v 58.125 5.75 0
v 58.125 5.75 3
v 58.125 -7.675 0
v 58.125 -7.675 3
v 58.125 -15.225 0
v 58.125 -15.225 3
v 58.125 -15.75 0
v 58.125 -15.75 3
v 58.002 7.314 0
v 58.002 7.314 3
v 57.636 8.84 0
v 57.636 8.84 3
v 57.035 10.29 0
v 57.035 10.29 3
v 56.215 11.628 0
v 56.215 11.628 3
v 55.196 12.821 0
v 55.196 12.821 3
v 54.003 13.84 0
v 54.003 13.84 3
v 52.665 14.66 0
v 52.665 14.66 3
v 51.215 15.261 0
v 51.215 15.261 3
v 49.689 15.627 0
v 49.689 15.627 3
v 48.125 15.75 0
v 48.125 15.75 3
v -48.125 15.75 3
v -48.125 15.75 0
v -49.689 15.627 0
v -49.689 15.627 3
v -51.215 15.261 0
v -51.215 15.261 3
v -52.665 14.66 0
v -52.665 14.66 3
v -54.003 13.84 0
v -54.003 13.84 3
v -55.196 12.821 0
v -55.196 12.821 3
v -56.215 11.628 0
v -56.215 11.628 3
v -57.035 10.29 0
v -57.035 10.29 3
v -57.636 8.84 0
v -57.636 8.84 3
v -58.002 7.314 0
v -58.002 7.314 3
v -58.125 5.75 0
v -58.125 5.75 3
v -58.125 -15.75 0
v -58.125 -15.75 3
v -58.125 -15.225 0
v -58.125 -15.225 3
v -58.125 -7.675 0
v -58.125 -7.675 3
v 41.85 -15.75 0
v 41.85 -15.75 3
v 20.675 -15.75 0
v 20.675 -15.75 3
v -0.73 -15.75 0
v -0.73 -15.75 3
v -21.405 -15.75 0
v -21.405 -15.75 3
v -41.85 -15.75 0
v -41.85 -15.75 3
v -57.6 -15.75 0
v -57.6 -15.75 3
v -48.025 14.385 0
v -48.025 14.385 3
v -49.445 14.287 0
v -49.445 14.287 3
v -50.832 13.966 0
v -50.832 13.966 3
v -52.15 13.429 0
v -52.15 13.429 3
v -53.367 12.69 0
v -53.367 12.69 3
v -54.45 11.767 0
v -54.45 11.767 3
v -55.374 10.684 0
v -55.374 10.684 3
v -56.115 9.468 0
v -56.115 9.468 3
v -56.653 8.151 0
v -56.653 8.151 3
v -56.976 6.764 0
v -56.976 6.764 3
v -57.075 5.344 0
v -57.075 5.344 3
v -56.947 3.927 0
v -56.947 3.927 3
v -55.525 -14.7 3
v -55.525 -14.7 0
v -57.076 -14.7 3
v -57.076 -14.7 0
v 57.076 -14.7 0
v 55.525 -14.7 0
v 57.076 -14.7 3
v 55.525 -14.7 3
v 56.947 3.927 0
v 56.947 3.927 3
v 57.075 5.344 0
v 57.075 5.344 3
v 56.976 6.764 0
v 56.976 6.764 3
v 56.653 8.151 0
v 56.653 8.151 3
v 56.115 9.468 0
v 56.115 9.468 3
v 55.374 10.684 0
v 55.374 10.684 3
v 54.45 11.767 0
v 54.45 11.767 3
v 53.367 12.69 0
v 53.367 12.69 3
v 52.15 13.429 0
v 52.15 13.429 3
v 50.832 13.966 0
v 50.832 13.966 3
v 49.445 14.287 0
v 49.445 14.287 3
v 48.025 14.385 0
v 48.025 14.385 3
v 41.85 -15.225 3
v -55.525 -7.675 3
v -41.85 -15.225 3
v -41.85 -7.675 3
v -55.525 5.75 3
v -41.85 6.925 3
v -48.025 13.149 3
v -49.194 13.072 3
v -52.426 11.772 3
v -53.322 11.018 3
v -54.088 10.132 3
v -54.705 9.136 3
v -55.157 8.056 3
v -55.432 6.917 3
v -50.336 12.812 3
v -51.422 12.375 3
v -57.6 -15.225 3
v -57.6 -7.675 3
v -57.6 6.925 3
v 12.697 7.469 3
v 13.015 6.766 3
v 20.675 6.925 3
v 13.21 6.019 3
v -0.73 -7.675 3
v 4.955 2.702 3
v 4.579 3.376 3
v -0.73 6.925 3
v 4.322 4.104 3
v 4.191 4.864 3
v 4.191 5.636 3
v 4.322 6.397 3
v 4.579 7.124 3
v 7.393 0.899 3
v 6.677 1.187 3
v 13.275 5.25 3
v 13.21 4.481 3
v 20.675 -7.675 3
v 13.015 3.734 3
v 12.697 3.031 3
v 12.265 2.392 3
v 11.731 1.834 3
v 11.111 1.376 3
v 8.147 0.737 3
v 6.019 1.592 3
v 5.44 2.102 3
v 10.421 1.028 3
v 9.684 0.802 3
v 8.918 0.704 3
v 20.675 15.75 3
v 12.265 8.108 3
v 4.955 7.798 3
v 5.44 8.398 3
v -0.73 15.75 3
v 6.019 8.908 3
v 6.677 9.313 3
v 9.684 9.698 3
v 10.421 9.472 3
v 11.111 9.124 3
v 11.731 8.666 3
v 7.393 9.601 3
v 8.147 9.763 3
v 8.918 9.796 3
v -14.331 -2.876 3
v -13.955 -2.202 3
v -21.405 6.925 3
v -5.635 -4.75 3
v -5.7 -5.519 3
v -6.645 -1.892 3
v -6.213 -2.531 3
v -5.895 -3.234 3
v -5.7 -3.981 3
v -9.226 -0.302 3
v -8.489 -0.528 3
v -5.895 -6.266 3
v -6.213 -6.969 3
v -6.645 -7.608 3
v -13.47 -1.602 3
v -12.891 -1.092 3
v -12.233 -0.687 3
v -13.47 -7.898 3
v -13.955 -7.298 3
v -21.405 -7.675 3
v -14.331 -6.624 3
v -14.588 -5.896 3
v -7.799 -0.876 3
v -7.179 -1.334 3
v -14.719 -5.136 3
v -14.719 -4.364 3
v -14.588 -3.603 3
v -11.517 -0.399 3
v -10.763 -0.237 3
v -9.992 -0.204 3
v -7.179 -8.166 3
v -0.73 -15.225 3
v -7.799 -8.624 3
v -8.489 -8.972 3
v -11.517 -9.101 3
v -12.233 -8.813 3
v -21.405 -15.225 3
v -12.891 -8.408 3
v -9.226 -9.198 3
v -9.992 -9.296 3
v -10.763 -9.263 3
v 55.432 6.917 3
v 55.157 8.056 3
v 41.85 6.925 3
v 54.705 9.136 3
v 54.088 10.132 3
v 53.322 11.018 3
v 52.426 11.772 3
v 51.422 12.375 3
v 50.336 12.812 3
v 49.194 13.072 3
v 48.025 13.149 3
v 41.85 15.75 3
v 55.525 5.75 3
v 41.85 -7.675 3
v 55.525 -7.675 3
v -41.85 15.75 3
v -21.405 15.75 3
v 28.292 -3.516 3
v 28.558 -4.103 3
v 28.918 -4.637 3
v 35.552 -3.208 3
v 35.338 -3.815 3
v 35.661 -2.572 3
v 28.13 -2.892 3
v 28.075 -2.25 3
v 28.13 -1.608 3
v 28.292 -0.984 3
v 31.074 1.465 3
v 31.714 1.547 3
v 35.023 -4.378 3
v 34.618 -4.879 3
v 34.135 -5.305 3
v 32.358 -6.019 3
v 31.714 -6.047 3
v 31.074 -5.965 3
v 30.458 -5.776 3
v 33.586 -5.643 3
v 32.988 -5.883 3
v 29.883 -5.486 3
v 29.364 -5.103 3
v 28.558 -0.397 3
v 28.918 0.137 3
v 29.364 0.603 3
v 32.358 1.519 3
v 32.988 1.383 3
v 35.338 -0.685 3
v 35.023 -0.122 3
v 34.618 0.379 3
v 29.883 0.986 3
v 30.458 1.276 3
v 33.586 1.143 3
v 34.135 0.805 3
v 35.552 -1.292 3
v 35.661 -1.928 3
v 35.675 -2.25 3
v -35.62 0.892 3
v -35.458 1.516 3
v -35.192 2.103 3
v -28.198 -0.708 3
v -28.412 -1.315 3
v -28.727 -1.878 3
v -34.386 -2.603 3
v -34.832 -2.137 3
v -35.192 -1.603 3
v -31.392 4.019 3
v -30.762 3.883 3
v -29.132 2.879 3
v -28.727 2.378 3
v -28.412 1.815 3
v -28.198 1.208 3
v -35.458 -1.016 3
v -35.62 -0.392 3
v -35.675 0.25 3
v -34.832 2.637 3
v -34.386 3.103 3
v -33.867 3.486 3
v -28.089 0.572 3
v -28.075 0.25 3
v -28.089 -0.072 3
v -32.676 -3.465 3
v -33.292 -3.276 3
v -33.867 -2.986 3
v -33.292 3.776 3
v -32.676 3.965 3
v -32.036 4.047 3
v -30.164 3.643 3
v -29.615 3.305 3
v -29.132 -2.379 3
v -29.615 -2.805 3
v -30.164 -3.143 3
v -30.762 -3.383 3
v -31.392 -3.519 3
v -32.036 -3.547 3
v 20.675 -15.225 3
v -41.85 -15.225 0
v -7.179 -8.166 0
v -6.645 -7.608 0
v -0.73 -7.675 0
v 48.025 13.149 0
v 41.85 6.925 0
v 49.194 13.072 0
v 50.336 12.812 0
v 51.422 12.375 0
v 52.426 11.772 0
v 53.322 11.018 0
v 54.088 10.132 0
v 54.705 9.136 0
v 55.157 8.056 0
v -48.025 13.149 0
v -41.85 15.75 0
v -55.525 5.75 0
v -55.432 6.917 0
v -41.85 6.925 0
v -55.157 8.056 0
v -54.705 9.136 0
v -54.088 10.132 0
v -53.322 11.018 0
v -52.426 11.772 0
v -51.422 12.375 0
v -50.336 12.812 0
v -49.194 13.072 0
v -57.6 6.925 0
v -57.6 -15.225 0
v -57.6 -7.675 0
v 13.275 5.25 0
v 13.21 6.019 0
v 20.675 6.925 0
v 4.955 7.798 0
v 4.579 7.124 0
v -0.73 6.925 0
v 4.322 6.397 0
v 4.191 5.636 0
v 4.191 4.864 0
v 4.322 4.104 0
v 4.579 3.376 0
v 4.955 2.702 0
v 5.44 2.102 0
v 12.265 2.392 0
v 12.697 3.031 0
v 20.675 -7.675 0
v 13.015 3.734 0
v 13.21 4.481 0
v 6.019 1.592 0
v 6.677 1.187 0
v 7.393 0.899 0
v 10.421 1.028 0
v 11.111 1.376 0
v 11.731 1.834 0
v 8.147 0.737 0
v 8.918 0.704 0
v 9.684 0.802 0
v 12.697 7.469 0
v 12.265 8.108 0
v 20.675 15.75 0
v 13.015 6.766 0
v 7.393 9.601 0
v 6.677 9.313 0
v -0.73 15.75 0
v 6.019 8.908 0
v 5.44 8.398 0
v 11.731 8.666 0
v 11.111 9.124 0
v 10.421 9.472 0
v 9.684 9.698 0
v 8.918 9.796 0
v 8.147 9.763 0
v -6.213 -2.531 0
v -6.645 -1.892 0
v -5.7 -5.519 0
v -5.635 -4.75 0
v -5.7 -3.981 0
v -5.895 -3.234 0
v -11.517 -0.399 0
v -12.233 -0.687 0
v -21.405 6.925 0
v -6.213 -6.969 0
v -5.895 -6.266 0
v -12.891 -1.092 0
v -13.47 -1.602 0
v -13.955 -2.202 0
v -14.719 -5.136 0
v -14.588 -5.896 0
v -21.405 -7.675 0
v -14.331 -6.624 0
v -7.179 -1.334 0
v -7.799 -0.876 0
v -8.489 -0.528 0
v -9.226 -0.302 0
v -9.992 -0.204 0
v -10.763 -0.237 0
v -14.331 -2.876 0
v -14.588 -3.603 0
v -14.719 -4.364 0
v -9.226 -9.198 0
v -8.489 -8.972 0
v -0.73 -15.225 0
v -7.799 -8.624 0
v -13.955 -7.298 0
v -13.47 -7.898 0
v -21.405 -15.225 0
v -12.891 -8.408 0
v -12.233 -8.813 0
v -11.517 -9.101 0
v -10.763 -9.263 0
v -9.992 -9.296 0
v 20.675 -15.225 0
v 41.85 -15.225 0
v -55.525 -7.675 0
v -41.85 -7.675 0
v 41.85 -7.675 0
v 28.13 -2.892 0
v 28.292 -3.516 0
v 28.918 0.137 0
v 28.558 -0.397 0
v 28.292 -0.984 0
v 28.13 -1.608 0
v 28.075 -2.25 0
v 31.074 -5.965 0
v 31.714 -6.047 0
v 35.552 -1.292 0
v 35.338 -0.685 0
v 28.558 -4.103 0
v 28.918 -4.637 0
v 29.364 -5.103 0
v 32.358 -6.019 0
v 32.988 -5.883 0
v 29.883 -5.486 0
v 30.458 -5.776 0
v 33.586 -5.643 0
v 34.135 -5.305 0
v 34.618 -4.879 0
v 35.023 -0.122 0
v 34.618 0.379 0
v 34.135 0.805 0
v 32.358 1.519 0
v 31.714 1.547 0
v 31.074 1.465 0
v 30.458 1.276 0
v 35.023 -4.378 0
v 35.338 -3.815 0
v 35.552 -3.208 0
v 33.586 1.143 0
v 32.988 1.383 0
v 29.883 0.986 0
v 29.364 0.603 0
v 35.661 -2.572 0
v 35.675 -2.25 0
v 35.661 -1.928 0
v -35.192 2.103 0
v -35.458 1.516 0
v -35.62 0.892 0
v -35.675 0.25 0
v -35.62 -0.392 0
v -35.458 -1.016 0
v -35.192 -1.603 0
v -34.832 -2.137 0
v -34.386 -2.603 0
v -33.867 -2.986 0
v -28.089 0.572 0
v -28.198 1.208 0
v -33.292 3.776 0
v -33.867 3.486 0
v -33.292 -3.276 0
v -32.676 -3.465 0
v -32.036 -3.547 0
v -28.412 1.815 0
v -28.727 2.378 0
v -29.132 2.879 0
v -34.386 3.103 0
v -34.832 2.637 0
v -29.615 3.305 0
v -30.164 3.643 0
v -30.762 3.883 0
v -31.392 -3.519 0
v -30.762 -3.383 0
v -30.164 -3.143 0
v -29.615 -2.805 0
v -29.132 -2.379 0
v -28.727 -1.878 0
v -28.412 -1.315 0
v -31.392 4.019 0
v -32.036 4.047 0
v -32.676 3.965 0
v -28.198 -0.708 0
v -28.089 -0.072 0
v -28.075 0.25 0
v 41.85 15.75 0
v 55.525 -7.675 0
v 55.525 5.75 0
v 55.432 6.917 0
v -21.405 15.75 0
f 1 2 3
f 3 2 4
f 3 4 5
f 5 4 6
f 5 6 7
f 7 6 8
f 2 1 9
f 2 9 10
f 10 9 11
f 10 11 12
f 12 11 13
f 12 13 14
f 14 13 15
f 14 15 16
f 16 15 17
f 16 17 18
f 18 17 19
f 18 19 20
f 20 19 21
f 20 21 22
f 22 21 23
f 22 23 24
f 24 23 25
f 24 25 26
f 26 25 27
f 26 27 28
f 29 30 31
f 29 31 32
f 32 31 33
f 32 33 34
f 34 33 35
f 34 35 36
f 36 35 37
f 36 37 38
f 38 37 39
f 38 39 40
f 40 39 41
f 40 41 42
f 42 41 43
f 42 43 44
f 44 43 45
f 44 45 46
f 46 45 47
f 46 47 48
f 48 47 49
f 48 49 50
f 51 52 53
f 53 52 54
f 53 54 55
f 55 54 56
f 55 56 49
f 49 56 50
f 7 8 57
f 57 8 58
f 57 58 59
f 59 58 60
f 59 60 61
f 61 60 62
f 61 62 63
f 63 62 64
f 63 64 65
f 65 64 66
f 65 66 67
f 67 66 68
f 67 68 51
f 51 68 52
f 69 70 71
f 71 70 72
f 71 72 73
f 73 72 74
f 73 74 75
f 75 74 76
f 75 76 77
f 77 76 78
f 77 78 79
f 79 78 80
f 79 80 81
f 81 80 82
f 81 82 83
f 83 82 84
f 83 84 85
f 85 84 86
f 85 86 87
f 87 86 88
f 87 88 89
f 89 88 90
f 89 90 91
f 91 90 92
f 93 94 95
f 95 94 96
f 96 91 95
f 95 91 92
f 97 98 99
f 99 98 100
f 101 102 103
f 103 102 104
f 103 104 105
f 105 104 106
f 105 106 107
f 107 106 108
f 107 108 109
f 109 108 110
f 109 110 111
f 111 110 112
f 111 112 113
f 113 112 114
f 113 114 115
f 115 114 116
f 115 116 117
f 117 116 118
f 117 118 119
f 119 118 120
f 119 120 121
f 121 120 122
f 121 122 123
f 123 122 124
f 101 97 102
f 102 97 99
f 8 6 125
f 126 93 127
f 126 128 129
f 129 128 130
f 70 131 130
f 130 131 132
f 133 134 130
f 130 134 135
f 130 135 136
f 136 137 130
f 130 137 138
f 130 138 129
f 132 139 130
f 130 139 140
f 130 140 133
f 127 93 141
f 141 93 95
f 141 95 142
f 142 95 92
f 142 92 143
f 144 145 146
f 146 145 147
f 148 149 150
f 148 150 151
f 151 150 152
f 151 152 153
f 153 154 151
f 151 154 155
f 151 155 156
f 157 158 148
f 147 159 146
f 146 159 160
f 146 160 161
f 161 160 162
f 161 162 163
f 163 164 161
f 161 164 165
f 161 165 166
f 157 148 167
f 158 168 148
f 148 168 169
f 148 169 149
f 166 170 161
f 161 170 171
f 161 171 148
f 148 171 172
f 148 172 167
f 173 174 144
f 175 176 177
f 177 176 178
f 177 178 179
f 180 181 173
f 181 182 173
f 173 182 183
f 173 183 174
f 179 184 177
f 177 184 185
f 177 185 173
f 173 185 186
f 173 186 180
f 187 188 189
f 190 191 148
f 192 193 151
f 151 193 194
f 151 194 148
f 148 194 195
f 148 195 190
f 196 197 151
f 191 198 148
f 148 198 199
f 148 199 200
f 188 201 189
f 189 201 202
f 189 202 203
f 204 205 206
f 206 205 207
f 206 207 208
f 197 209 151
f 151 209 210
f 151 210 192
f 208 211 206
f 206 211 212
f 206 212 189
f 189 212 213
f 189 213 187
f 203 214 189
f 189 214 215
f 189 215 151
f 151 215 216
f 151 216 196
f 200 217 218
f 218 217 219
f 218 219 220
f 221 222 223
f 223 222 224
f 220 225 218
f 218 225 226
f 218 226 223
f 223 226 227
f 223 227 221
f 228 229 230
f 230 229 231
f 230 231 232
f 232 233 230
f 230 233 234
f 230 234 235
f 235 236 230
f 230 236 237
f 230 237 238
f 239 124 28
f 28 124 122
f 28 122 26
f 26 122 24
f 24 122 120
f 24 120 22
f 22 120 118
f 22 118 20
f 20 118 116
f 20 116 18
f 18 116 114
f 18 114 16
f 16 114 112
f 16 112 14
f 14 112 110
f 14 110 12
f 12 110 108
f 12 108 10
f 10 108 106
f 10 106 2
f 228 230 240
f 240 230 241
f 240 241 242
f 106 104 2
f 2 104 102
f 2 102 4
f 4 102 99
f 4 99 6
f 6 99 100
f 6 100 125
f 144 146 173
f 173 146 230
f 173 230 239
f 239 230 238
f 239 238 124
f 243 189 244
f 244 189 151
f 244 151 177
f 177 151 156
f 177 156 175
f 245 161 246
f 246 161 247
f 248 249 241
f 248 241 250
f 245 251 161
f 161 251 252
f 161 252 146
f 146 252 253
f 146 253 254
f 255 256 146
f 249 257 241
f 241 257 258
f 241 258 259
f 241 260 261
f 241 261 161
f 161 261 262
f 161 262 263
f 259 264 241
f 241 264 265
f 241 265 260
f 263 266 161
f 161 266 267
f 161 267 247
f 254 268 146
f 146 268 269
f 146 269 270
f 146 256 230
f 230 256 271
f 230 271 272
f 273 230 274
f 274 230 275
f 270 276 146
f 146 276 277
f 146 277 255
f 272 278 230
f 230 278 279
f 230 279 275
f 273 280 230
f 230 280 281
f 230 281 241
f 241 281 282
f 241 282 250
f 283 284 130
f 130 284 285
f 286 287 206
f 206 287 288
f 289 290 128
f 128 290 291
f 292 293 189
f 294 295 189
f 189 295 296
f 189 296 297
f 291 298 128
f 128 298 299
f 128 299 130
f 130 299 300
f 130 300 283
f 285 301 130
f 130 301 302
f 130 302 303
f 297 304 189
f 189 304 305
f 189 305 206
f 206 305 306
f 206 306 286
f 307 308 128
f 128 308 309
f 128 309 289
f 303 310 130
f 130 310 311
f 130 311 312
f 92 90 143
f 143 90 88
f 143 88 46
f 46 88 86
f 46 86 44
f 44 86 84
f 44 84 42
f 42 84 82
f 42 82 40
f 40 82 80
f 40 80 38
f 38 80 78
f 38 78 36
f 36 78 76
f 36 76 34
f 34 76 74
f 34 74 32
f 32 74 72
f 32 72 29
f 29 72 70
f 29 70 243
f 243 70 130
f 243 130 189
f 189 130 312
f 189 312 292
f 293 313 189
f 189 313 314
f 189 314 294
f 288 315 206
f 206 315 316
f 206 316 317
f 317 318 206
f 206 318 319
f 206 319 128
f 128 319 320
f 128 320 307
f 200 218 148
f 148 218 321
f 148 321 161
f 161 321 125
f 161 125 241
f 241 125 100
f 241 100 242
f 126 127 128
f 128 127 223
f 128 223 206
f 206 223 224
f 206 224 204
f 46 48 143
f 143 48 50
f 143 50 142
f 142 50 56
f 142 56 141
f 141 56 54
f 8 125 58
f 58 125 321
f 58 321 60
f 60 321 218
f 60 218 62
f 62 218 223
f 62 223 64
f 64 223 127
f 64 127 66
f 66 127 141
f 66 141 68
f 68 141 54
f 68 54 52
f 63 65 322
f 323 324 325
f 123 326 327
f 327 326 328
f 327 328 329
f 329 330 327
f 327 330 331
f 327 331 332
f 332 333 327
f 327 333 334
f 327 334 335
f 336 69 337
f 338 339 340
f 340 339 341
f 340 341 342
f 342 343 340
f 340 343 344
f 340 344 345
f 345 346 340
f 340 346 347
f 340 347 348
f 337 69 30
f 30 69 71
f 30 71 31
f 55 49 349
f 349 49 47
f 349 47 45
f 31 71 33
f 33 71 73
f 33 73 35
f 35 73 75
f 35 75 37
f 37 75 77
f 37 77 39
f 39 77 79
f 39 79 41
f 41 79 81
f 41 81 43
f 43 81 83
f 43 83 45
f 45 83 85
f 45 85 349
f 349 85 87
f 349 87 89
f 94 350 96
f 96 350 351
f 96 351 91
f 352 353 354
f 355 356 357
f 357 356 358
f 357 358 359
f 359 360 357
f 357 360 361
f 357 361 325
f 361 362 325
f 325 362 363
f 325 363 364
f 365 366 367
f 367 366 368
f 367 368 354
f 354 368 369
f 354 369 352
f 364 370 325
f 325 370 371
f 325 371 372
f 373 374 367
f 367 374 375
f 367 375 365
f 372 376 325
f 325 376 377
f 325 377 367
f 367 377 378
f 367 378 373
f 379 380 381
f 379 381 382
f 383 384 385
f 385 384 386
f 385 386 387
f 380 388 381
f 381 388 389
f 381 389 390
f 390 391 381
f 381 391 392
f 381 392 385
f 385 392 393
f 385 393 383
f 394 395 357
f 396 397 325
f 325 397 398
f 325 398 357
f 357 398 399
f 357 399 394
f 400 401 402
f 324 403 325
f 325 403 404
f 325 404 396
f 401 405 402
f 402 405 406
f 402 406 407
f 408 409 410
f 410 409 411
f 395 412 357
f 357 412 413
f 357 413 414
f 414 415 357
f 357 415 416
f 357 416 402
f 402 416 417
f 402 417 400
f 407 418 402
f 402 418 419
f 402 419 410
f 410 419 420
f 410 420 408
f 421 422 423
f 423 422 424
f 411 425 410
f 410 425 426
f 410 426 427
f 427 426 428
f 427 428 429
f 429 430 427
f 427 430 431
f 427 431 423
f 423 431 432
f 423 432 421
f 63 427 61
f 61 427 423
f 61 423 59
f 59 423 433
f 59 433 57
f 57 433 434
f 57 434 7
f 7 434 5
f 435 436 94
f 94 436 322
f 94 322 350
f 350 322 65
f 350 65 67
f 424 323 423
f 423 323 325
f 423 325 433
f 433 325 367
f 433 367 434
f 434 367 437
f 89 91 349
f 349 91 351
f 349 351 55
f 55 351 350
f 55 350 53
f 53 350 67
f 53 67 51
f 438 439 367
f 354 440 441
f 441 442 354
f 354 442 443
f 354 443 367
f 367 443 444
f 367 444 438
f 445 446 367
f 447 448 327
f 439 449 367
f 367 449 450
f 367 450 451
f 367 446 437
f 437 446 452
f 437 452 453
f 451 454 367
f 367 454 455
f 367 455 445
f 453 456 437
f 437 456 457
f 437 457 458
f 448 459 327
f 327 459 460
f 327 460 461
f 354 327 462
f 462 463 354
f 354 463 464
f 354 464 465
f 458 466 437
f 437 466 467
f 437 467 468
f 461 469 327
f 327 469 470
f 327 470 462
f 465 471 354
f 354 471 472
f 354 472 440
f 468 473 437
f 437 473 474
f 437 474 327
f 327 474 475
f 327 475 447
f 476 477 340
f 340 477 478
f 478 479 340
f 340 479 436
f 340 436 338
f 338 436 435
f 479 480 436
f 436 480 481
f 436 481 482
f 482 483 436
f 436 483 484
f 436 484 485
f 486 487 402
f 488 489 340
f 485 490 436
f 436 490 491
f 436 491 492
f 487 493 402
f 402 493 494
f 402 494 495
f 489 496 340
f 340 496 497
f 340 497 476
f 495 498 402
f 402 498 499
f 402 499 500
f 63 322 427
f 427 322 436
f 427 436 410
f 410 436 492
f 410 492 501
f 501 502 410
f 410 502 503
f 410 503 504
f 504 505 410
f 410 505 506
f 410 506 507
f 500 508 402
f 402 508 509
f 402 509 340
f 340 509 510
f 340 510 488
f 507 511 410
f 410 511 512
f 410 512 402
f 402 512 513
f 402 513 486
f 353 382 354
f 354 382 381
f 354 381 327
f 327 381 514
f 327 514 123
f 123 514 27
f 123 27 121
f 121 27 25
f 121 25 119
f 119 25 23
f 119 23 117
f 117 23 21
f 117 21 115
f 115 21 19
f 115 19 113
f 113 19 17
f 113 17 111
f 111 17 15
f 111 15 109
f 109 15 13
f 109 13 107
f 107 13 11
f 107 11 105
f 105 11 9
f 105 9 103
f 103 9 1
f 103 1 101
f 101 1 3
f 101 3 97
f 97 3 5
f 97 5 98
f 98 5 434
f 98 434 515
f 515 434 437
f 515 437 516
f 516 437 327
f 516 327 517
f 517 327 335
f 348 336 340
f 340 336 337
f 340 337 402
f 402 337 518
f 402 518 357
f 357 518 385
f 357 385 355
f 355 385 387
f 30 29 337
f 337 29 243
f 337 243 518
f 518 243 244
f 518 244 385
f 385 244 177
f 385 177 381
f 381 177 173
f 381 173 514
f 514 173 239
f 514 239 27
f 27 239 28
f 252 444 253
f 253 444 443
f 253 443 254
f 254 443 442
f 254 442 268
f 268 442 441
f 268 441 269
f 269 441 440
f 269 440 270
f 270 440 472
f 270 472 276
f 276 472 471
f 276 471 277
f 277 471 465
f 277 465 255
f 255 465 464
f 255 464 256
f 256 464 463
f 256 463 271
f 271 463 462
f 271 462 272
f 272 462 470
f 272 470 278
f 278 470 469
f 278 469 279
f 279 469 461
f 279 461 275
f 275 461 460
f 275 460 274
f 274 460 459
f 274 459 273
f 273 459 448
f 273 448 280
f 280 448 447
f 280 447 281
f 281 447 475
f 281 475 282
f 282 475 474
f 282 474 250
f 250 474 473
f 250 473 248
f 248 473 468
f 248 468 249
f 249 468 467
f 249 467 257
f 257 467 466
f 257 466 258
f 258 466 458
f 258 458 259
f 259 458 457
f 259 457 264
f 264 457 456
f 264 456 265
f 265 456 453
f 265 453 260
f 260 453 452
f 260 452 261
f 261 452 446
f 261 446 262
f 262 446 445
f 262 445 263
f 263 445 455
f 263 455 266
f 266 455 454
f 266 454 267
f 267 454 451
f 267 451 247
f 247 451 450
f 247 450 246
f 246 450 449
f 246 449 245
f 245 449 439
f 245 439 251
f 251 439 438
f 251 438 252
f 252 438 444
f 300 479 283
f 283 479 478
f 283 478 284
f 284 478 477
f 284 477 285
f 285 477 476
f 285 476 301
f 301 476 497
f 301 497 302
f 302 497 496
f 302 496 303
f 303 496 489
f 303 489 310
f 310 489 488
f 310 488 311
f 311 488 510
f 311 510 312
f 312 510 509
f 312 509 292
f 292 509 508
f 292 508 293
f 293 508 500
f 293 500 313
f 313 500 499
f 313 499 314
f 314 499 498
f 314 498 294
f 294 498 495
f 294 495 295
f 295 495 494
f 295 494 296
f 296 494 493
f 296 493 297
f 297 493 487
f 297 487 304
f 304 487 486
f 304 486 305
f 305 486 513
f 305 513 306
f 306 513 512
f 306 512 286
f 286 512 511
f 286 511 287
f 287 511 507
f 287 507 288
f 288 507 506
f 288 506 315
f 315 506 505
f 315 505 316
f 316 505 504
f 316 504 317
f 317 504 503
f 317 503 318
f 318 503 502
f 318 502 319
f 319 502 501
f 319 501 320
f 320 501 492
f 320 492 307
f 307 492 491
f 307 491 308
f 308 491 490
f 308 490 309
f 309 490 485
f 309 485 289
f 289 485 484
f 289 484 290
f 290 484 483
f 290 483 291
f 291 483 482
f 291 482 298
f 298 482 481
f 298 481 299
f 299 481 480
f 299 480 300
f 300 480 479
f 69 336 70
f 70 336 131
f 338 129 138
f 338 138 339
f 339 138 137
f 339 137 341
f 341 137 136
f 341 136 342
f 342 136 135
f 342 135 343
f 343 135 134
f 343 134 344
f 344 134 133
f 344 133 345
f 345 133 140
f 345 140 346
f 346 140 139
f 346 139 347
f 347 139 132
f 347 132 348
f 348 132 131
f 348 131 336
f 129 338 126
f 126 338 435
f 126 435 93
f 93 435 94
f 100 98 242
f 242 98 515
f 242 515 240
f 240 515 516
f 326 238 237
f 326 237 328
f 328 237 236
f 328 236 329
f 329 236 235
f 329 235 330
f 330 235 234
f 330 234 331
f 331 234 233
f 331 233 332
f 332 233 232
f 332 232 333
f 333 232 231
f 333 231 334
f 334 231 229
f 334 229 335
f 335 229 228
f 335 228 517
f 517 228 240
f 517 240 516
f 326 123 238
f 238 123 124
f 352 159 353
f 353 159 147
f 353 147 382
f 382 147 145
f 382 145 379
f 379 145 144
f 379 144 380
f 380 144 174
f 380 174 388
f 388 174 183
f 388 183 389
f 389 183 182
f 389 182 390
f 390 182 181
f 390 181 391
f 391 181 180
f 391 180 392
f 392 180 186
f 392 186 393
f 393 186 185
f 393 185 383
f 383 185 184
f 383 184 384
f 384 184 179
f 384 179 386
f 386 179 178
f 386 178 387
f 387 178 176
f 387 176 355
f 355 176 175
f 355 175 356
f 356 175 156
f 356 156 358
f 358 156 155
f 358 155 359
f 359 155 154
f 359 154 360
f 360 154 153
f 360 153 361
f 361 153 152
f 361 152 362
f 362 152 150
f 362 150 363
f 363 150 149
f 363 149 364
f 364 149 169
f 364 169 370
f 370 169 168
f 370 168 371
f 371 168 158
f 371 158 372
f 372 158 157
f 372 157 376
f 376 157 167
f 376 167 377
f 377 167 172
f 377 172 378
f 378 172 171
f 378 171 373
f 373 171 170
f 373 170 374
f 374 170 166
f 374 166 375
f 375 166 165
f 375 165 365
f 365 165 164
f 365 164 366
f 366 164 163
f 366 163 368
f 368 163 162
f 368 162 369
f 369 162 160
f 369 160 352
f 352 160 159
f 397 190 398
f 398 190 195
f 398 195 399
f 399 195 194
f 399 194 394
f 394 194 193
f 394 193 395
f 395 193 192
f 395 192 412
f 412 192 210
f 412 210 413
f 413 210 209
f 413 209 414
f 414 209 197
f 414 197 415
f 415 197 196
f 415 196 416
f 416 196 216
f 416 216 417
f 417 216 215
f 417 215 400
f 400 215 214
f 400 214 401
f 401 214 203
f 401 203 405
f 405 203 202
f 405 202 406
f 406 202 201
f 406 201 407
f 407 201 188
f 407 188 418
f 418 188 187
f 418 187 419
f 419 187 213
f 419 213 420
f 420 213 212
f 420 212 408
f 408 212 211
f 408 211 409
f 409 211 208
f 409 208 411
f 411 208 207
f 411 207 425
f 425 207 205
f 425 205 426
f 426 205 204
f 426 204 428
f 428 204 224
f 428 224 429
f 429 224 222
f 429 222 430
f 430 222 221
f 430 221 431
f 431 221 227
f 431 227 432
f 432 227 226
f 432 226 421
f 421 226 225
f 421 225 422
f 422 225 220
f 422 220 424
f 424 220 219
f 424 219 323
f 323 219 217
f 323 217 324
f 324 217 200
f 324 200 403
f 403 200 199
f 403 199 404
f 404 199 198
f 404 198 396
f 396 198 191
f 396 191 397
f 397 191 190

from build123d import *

# Parameters (mm, degrees)
SKETCH1_R           = 3.8
BOSS_EXTRUDE2_DEPTH = 3
SKETCH2_R           = 4.4
BOSS_EXTRUDE3_DEPTH = 25
CUT_EXTRUDE3_START  = -1
SKETCH10_R          = 4.4
CUT_EXTRUDE3_DEPTH  = 1
CUT_EXTRUDE4_DEPTH  = 50
SKETCH12_R          = 4.55
CUT_EXTRUDE6_DEPTH  = 50
CUT_EXTRUDE7_DEPTH  = 25


with BuildPart() as part:
    # Sketch1 → Boss-Extrude2 (new body)
    with BuildSketch(Plane.XY):
        with BuildLine():
            Line((-48.125, 15.75), (48.125, 15.75))
            ThreePointArc((48.125, 15.75), (55.196067812, 12.821067812), (58.125, 5.75))
            Line((58.125, 5.75), (58.125, -15.75))
            Line((58.125, -15.75), (-58.125, -15.75))
            Line((-58.125, -15.75), (-58.125, 5.75))
            ThreePointArc((-58.125, 5.75), (-55.196067812, 12.821067812), (-48.125, 15.75))
        make_face()
        with Locations((31.875, -2.25)):
            Circle(SKETCH1_R, mode=Mode.SUBTRACT)
        with Locations((-31.875, 0.25)):
            Circle(SKETCH1_R, mode=Mode.SUBTRACT)
    extrude(amount=BOSS_EXTRUDE2_DEPTH)

    # Sketch2 → Boss-Extrude3 (add)
    with BuildSketch(Plane.XY.offset(3)):
        with Locations((8.725, 5.25)):
            Circle(SKETCH2_R)
        with Locations((-10.185, -4.75)):
            Circle(SKETCH2_R)
        with BuildLine():
            Line((55.625, 5.75), (55.625, -15.75))
            Line((55.625, -15.75), (58.125, -15.75))
            Line((58.125, -15.75), (58.125, 5.25))
            Line((58.125, 5.25), (58.125, 5.75))
            ThreePointArc((58.125, 5.75), (55.196067812, 12.821067812), (48.125, 15.75))
            Line((48.125, 15.75), (48.125, 13.25))
            ThreePointArc((48.125, 13.25), (53.428300859, 11.053300859), (55.625, 5.75))
        make_face()
        with BuildLine():
            Line((-58.125, -15.75), (-55.625, -15.75))
            Line((-55.625, -15.75), (-55.625, 5.75))
            ThreePointArc((-55.625, 5.75), (-53.428300859, 11.053300859), (-48.125, 13.25))
            Line((-48.125, 13.25), (-48.125, 15.75))
            ThreePointArc((-48.125, 15.75), (-55.196067812, 12.821067812), (-58.125, 5.75))
            Line((-58.125, 5.75), (-58.125, 5.25))
            Line((-58.125, 5.25), (-58.125, -15.75))
        make_face()
    extrude(amount=BOSS_EXTRUDE3_DEPTH)

    # Sketch10 → Cut-Extrude3 (cut)
    with BuildSketch(Plane.XY.offset(28).offset(CUT_EXTRUDE3_START)):
        with Locations((8.725, 5.25)):
            Circle(SKETCH10_R)
        with Locations((-10.185, -4.75)):
            Circle(SKETCH10_R)
    extrude(amount=CUT_EXTRUDE3_DEPTH, mode=Mode.SUBTRACT)

    # Sketch5 → Cut-Extrude4 (cut)
    with BuildSketch(Plane.XY.offset(28)):
        with BuildLine():
            Line((55.525, -14.7), (55.525, 5.75))
            ThreePointArc((55.525, 5.75), (53.322114584, 11.017826876), (48.025, 13.149324293))
            Line((48.025, 13.149324293), (48.025, 14.384631142))
            ThreePointArc((48.025, 14.384631142), (54.933874825, 11.243952477), (56.946937757, 3.926576481))
            Line((56.946937757, 3.926576481), (57.075693637, -14.7))
            Line((57.075693637, -14.7), (55.525, -14.7))
        make_face()
        with BuildLine():
            Line((-56.946937757, 3.926576481), (-57.075693637, -14.7))
            Line((-57.075693637, -14.7), (-55.525, -14.7))
            Line((-55.525, -14.7), (-55.525, 5.75))
            ThreePointArc((-55.525, 5.75), (-53.322114584, 11.017826876), (-48.025, 13.149324293))
            Line((-48.025, 13.149324293), (-48.025, 14.384631142))
            ThreePointArc((-48.025, 14.384631142), (-54.933874825, 11.243952477), (-56.946937757, 3.926576481))
        make_face()
    extrude(amount=-CUT_EXTRUDE4_DEPTH, mode=Mode.SUBTRACT)

    # Sketch12 → Cut-Extrude6 (cut)
    with BuildSketch(Plane.XY.offset(27)):
        with Locations((-10.185, -4.75)):
            Circle(SKETCH12_R)
        with Locations((8.725, 5.25)):
            Circle(SKETCH12_R)
    extrude(amount=-CUT_EXTRUDE6_DEPTH, mode=Mode.SUBTRACT)

    # Sketch13 → Cut-Extrude7 (cut)
    with BuildSketch(Plane.XY.offset(28)):
        with BuildLine():
            Line((57.075693637, -14.7), (55.625, -14.7))
            Line((55.625, -14.7), (55.625, -15.75))
            Line((55.625, -15.75), (58.125, -15.75))
            Line((58.125, -15.75), (58.125, 5.75))
            ThreePointArc((58.125, 5.75), (55.196067812, 12.821067812), (48.125, 15.75))
            Line((48.125, 15.75), (48.125, 14.385189819))
            ThreePointArc((48.125, 14.385189819), (54.966220263, 11.205822827), (56.946937757, 3.926576481))
            Line((56.946937757, 3.926576481), (57.075693637, -14.7))
        make_face()
        with BuildLine():
            Line((-48.125, 14.385189819), (-48.125, 15.75))
            ThreePointArc((-48.125, 15.75), (-55.196067812, 12.821067812), (-58.125, 5.75))
            Line((-58.125, 5.75), (-58.125, -15.75))
            Line((-58.125, -15.75), (-55.625, -15.75))
            Line((-55.625, -15.75), (-55.625, -14.7))
            Line((-55.625, -14.7), (-57.075693637, -14.7))
            Line((-57.075693637, -14.7), (-56.946937757, 3.926576481))
            ThreePointArc((-56.946937757, 3.926576481), (-54.966220263, 11.205822827), (-48.125, 14.385189819))
        make_face()
    extrude(amount=-CUT_EXTRUDE7_DEPTH, mode=Mode.SUBTRACT)


solid = part.part
